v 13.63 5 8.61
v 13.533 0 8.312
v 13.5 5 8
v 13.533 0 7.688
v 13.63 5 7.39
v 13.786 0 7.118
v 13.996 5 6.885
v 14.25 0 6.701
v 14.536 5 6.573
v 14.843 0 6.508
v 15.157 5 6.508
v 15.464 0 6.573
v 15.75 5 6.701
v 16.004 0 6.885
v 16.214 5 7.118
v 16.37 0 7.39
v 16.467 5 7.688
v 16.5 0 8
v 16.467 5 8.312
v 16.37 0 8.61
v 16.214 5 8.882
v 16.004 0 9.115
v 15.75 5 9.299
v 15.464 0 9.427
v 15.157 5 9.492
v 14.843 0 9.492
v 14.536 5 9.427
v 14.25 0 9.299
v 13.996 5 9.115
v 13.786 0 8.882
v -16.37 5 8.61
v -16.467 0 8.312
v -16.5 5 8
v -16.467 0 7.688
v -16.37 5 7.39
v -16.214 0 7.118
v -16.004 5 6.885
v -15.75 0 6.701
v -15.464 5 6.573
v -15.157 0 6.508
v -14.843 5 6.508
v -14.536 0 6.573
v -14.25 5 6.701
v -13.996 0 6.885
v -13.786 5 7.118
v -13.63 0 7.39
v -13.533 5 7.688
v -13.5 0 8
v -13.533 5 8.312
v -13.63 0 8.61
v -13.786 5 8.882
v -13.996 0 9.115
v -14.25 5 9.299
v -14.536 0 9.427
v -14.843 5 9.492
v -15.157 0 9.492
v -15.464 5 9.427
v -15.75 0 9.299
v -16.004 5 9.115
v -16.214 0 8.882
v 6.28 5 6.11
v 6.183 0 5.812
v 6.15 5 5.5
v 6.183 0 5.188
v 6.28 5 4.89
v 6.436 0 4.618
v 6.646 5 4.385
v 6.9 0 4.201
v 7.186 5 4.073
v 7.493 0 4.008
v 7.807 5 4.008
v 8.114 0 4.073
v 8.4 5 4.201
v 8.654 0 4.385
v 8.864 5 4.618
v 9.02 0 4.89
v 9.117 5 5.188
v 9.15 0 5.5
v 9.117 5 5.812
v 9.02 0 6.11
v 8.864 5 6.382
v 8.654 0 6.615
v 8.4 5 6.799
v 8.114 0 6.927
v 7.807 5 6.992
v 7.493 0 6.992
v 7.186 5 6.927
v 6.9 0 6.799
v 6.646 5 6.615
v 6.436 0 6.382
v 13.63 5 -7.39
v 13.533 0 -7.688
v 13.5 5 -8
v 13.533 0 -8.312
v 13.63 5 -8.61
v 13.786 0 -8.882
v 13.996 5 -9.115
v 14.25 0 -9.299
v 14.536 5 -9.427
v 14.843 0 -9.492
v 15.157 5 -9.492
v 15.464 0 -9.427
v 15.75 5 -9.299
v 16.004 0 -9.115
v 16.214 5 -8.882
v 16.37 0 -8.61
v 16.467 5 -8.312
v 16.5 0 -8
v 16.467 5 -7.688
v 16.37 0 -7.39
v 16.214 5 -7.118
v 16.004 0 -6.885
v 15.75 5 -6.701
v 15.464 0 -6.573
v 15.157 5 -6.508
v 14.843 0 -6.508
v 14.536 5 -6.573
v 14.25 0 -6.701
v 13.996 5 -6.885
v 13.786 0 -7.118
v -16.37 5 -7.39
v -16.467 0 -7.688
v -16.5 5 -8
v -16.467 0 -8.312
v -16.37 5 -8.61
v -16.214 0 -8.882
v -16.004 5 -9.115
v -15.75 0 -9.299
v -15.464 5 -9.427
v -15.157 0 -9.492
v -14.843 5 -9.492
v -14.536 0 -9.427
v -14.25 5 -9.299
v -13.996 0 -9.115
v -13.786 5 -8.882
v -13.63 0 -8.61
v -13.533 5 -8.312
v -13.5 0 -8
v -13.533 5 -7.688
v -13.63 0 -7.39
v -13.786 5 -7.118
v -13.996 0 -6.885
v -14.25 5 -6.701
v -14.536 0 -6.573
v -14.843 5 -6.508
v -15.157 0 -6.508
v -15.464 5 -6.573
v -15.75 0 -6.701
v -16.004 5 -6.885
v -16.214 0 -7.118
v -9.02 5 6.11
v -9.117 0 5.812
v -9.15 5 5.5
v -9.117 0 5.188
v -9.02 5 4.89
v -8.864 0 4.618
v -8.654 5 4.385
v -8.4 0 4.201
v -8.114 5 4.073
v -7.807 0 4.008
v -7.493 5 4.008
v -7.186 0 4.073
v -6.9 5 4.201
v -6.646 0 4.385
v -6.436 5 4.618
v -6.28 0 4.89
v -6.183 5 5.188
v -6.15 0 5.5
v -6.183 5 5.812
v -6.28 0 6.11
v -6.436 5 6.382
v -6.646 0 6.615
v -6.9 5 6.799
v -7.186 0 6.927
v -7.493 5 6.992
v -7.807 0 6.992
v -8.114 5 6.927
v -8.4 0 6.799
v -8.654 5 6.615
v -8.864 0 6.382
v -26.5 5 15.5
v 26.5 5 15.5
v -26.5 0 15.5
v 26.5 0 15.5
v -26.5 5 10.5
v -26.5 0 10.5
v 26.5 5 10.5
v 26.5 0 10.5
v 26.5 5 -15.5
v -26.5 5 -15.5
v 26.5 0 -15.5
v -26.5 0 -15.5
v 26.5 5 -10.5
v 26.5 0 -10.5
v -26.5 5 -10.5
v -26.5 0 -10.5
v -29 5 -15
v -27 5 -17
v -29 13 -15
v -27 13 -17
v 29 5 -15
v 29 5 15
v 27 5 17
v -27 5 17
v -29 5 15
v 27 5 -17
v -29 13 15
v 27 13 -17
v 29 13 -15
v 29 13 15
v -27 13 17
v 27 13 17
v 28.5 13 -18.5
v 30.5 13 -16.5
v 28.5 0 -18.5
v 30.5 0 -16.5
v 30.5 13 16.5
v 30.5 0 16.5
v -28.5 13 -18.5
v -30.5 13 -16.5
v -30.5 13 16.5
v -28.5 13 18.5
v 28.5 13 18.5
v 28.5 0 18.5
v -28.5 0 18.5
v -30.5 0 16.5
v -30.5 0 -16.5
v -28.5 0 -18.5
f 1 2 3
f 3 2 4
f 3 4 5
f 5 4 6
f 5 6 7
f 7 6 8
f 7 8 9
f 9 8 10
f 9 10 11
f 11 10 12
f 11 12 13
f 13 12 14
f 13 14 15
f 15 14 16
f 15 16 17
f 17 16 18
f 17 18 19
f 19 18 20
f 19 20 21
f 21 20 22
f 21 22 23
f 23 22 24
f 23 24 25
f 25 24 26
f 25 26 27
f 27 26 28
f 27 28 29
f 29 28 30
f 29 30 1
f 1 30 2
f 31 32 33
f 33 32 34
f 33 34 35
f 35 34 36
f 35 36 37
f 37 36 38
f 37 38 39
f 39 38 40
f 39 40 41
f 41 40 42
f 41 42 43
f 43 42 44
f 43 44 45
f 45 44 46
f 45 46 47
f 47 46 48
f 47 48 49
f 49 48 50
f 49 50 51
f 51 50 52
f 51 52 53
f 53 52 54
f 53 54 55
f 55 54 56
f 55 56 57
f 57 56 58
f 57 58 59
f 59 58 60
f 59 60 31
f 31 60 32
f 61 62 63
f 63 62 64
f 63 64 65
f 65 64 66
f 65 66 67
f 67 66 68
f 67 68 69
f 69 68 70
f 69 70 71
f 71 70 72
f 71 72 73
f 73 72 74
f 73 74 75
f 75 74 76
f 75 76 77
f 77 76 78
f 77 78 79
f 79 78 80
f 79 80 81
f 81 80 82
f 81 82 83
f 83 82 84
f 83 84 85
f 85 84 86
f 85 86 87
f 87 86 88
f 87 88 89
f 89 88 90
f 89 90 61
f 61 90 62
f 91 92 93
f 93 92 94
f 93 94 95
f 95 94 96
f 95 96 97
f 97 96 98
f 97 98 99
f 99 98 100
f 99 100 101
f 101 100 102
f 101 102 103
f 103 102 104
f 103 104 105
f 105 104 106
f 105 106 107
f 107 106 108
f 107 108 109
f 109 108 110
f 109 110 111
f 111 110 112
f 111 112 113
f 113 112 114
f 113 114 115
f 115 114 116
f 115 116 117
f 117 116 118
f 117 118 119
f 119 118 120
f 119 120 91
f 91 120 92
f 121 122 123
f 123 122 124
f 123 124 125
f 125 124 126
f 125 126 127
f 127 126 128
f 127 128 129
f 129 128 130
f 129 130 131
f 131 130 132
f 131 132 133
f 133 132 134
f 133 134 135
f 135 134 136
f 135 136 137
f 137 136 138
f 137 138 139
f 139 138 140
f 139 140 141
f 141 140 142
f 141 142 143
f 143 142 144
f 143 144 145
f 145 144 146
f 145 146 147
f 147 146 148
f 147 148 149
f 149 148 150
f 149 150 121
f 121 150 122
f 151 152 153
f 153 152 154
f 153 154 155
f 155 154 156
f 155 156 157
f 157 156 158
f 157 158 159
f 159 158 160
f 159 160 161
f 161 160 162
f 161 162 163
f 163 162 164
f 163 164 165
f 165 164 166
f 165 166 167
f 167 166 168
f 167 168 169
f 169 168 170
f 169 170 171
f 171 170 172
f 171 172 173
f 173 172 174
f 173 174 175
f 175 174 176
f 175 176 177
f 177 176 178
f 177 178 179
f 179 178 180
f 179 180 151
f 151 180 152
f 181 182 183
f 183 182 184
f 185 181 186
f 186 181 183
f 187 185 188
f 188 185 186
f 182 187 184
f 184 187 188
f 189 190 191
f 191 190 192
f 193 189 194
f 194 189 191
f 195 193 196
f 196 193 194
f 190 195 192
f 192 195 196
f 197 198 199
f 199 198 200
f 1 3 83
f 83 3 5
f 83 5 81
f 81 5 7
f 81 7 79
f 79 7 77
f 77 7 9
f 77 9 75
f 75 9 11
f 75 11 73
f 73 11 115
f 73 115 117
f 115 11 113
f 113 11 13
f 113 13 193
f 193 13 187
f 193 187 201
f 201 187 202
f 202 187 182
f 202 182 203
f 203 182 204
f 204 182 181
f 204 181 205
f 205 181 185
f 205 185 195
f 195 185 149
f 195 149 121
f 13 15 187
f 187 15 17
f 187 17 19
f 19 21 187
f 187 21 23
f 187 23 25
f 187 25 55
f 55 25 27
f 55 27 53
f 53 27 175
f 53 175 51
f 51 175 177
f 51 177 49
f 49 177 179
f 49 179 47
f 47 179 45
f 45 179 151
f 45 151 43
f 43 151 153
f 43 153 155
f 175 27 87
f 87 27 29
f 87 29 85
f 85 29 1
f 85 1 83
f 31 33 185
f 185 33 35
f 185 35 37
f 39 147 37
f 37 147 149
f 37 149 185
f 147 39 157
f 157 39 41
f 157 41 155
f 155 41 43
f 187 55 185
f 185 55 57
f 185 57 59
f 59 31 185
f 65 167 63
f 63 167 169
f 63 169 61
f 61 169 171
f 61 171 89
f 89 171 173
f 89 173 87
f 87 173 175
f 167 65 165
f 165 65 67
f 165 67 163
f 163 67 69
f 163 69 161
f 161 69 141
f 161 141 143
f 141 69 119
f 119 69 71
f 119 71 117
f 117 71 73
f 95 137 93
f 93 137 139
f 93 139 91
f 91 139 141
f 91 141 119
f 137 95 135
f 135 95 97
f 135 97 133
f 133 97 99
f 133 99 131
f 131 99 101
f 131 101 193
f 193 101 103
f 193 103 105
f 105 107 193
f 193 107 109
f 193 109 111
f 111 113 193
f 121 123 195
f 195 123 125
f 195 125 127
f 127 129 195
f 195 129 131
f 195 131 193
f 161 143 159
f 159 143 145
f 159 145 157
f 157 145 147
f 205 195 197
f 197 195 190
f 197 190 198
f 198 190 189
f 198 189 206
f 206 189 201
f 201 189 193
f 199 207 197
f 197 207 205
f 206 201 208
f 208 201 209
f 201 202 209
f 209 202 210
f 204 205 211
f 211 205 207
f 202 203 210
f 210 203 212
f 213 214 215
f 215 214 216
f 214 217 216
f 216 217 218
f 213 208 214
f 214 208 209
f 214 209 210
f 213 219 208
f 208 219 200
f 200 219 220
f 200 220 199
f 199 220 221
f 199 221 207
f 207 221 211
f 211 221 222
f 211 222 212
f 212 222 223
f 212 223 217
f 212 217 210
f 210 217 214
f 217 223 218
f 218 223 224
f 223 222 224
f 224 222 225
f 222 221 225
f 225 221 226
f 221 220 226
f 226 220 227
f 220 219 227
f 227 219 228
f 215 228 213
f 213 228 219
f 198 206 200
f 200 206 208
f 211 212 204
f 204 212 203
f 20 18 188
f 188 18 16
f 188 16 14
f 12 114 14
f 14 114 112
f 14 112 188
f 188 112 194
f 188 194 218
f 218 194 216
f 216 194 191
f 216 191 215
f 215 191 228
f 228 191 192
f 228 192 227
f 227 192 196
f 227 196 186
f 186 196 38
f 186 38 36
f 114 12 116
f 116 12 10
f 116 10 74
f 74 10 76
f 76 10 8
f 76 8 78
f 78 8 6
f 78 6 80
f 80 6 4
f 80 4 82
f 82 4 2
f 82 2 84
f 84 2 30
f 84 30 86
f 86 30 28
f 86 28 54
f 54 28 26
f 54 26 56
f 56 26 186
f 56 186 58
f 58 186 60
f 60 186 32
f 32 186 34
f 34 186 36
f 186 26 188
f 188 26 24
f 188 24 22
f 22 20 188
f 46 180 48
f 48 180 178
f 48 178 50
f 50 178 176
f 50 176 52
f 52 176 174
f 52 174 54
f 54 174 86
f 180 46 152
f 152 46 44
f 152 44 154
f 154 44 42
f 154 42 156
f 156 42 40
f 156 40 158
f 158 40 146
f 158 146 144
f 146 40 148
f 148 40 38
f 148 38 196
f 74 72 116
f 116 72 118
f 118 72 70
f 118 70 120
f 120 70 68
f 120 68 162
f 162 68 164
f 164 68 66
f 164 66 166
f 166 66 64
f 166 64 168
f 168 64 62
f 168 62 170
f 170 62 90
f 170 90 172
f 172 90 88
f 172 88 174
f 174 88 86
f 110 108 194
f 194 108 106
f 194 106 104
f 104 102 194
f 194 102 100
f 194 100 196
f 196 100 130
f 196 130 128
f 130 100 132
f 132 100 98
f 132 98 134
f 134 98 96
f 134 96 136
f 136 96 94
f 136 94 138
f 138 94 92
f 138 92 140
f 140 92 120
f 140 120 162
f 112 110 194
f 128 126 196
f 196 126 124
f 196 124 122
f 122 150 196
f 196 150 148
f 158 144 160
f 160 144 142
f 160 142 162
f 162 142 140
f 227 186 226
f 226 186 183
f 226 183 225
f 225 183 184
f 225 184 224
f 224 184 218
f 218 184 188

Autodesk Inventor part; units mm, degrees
ref_plane "YZ Plane" through (0, 0, 0) normal (1, 0, 0) x (0, 1, 0)
ref_plane "XZ Plane" through (0, 0, 0) normal (0, 1, 0) x (-1, 0, 0)
ref_plane "XY Plane" through (0, 0, 0) normal (0, 0, 1) x (1, 0, 0)
sketch "Esboço1" plane through (0, 0, 0) normal (0, 1, 0) x (-1, 0, 0)
  line L0 (-30.5, -18.5) -> (30.5, -18.5)
  line L1 (30.5, -18.5) -> (30.5, 18.5)
  line L2 (30.5, 18.5) -> (-30.5, 18.5)
  line L3 (-30.5, 18.5) -> (-30.5, -18.5)
  line L4 (-30.5, -18.5) -> (30.5, 18.5) construction
  line L5 (30.5, -18.5) -> (-30.5, 18.5) construction
  point P0 (0, 0)
  point P1 (0, 0)
  dimension "d2" = 61
  dimension "d3" = 37
  dimension "d6" = 0
  dimension "d7" = 0
extrude "Extrusão1" add sketch "Esboço1" along normal blind 5
sketch "Esboço3" plane through (0, 5, 0) normal (0, 1, 0) x (1, 0, 0)
  line L0 (29, -17) -> (-29, -17)
  line L1 (-29, -17) -> (-29, 17)
  line L2 (-29, 17) -> (29, 17)
  line L3 (29, 17) -> (29, -17)
  line L4 (29, -17) -> (-29, 17) construction
  line L5 (-29, -17) -> (29, 17) construction
  line L6 (-30.5, 18.5) -> (-30.5, -18.5) projected
  line L7 (30.5, -18.5) -> (-30.5, -18.5)
  line L8 (-30.5, -18.5) -> (-30.5, 18.5)
  line L9 (-30.5, 18.5) -> (30.5, 18.5)
  line L10 (30.5, 18.5) -> (30.5, -18.5)
  line L11 (30.5, -18.5) -> (-30.5, 18.5) construction
  line L12 (-30.5, -18.5) -> (30.5, 18.5) construction
  point P0 (0, 0)
  point P1 (-30.5, -18.5)
  dimension "d49" = 1.5
  dimension "d50" = 1.5
extrude "Extrusão2" add sketch "Esboço3" along normal blind 8
chamfer "Chanfro1" distance 2 angle 45 4 edges at (-30.5, 6.5, -18.5) (-30.5, 6.5, 18.5) (30.5, 6.5, 18.5) (30.5, 6.5, -18.5)
chamfer "Chanfro2" distance 2 angle 45 4 edges at (29, 9, 17) (-29, 9, 17) (29, 9, -17) (-29, 9, -17)
sketch "Esboço4" plane through (0, 0, 0) normal (0, -1, 0) x (1, 0, 0)
  line L0 (26.5, 15.5) -> (-26.5, 15.5)
  line L1 (-26.5, 15.5) -> (-26.5, 10.5)
  line L2 (-26.5, 10.5) -> (26.5, 10.5)
  line L3 (26.5, 10.5) -> (26.5, 15.5)
  line L4 (-30.5, 18.5) -> (30.5, 18.5) projected
  line L5 (-30.5, -18.5) -> (-30.5, 18.5) projected
  line L6 (30.5, 18.5) -> (30.5, -18.5) projected
  line L7 (-26.5, -15.5) -> (26.5, -15.5)
  line L8 (26.5, -15.5) -> (26.5, -10.5)
  line L9 (26.5, -10.5) -> (-26.5, -10.5)
  line L10 (-26.5, -10.5) -> (-26.5, -15.5)
  line L11 (30.5, -18.5) -> (-30.5, -18.5) projected
  point P0 (0, 0)
  point P1 (-28.5, 18.5)
  point P2 (28.5, 18.5)
  point P3 (-30.5, -16.5)
  point P4 (-30.5, 16.5)
  point P5 (30.5, 16.5)
  point P6 (30.5, -16.5)
  point P7 (26.5, 13)
  point P8 (26.5, -13)
  point P9 (-26.5, -13)
  point P10 (28.5, -18.5)
  point P11 (-28.5, -18.5)
  dimension "d18" = 3
  dimension "d19" = 5
  dimension "d20" = 4
  dimension "d21" = 4
  dimension "d23" = 4
  dimension "d24" = 4
  dimension "d25" = 5
  dimension "d26" = 3
extrude "Extrusão3" cut sketch "Esboço4" against normal through all contours L3 L2 L1 L0 | L10 L9 L8 L7
sketch "Esboço5" plane through (0, 0, 0) normal (0, -1, 0) x (1, 0, 0)
  line L0 (26.5, 10.5) -> (-26.5, 10.5) projected
  line L1 (-26.5, 10.5) -> (-26.5, 15.5) projected
  line L2 (-26.5, 15.5) -> (26.5, 15.5) projected
  line L3 (26.5, 15.5) -> (26.5, 10.5) projected
  line L4 (-26.5, -10.5) -> (26.5, -10.5) projected
  line L5 (26.5, -10.5) -> (26.5, -15.5) projected
  line L6 (26.5, -15.5) -> (-26.5, -15.5) projected
  line L7 (-26.5, -15.5) -> (-26.5, -10.5) projected
  line L8 (30.5, 16.5) -> (30.5, -16.5) projected
  line L9 (-28.5, 18.5) -> (28.5, 18.5) projected
  line L10 (-30.5, -16.5) -> (-30.5, 16.5) projected
  line L11 (28.5, -18.5) -> (-28.5, -18.5) projected
  circle A0 centre (15, 8) radius 1.5
  circle A1 centre (15, -8) radius 1.5
  circle A2 centre (-15, 8) radius 1.5
  circle A3 centre (-15, -8) radius 1.5
  line L12 (17.5, 10.5) -> (-17.5, 10.5)
  line L13 (-17.5, 10.5) -> (-17.5, -10.5)
  line L14 (-17.5, -10.5) -> (17.5, -10.5)
  line L15 (17.5, -10.5) -> (17.5, 10.5)
  line L16 (17.5, 10.5) -> (-17.5, -10.5) construction
  line L17 (-17.5, 10.5) -> (17.5, -10.5) construction
  line L18 (30.5, -16.5) -> (28.5, -18.5) projected
  line L19 (28.5, 18.5) -> (30.5, 16.5) projected
  line L20 (-30.5, 16.5) -> (-28.5, 18.5) projected
  line L21 (-28.5, -18.5) -> (-30.5, -16.5) projected
  circle A4 centre (-7.65, 5.5) radius 1.5
  circle A5 centre (7.65, 5.5) radius 1.5
  point P0 (0, 0)
  dimension "d31" = 3
  dimension "d35" = 2.5
  dimension "d36" = 2.5
  dimension "d38" = 2.5
  dimension "d42" = 35
  dimension "d43" = 2.5
  dimension "d44" = 2.5
  dimension "d45" = 21
  dimension "d46" = 2.5
  dimension "d47" = 2.5
  dimension "d48" = 2.5
  dimension "d51" = 3
  dimension "d52" = 3
  dimension "d55" = 5
  dimension "d56" = 5
  dimension "d58" = 15.3
  dimension "d59" = 9.85
  dimension "d60" = 9.85
extrude "Extrusão4" cut sketch "Esboço5" against normal through all contours A0 | A1 | A2 | A3 | A4 | A5
equation "\"d59\" = d60"
properties part number "espTopLayer"
